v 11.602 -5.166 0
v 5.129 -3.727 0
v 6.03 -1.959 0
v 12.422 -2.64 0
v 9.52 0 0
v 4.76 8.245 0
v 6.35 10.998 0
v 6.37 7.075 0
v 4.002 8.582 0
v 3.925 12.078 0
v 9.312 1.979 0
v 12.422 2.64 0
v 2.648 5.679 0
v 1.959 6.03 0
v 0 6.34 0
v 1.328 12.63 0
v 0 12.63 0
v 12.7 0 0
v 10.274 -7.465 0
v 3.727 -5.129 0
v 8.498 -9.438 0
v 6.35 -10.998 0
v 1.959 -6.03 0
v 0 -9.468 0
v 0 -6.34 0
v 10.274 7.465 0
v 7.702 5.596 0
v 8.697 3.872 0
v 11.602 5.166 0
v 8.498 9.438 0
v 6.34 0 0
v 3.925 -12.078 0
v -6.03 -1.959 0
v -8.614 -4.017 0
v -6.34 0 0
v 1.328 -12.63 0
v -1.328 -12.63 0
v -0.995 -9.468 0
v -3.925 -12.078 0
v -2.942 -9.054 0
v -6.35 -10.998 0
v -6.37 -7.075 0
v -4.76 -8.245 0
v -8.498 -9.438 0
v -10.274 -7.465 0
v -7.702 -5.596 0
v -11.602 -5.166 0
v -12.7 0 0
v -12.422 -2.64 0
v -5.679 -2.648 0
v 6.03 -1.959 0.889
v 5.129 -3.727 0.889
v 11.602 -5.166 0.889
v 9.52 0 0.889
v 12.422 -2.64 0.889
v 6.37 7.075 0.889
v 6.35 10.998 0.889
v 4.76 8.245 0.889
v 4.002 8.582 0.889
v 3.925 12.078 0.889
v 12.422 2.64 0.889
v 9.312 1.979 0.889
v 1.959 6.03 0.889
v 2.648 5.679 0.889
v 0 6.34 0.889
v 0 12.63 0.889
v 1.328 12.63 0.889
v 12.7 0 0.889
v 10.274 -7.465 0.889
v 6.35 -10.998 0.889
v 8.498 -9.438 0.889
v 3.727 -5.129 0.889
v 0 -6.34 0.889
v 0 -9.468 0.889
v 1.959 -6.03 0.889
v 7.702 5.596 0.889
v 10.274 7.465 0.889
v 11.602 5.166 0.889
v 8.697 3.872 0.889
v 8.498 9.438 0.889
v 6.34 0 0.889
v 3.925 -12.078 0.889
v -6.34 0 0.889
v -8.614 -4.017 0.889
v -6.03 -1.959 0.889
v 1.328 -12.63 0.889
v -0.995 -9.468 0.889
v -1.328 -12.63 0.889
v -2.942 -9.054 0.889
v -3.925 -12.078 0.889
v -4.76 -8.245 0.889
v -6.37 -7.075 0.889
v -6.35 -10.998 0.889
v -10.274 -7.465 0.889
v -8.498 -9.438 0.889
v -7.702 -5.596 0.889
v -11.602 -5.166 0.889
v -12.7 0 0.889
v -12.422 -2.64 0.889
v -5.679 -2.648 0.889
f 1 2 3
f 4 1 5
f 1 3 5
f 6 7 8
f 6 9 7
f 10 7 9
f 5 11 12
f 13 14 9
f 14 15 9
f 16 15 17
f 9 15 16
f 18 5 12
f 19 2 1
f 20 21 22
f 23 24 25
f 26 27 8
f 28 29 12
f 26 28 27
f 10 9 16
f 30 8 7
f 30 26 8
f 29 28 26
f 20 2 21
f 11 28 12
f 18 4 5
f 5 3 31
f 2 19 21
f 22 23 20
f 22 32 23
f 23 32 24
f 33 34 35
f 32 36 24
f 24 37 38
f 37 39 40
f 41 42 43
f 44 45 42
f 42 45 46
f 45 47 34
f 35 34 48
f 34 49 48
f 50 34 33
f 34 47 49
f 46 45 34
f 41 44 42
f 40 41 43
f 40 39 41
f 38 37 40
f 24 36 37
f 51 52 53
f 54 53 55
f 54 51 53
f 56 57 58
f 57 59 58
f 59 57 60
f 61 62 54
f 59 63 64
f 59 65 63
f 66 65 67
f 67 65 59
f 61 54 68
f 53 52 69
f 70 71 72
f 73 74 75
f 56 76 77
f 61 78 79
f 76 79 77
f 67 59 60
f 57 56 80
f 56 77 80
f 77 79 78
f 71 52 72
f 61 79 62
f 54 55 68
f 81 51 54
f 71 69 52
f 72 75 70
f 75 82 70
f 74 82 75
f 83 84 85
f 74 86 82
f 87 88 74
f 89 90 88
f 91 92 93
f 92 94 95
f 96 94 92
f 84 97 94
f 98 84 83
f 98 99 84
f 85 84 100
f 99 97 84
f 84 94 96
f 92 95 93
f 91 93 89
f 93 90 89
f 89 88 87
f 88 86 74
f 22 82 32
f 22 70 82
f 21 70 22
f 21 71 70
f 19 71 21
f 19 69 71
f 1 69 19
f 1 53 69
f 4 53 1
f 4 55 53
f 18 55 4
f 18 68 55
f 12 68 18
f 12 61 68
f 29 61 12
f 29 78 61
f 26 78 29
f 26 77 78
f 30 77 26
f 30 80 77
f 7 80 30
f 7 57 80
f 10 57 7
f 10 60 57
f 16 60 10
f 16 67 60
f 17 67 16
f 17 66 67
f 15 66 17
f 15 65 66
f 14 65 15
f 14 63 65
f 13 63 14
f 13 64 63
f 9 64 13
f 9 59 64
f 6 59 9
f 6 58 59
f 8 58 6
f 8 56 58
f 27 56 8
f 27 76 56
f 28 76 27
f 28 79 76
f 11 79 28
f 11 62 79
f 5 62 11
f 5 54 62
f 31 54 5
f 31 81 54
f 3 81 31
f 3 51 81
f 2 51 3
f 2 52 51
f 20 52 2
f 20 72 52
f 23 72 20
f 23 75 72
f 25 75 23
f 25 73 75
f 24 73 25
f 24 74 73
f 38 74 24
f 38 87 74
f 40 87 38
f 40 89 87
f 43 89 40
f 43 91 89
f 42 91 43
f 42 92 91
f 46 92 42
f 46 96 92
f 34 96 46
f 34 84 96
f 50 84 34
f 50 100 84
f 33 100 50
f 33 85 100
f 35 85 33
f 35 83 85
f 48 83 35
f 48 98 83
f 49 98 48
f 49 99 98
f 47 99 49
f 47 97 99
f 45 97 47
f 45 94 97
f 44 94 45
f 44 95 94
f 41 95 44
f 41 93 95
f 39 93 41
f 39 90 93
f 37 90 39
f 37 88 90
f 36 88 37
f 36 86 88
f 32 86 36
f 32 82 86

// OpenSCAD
/*
This s a cclip or spring clip or snap ring


'''
*/


function polar(r,theta)   = r*[sin(theta), cos(theta)]; 


module ArchClipingPloy(Rad, thickness,StartAngle,endAngle) 
{echo(StartAngle,endAngle);
    pointA=[0,0];
    
       pointS=polar(Rad*2,StartAngle);
        pointE=polar(Rad*2,endAngle);
        pointOut=polar(Rad*2,(endAngle+StartAngle)/2);
    pointOutS=polar(Rad*2,(StartAngle+(endAngle+StartAngle)/2)/2);
     pointOutE=polar(Rad*2,(endAngle+(endAngle+StartAngle)/2)/2);
   // echo(pointA,pointS,pointE,pointOut,(endAngle+StartAngle)/2,(StartAngle+(endAngle+StartAngle)/2)/2,(endAngle+(endAngle+StartAngle)/2)/2);
    polygon([pointA,pointS,,pointOutS,pointOut,pointOutE,pointE],paths=[[0,1,2,3,4,5]]);
    }
module Arch(Rad, thickness,StartAngle,endAngle) {
   echo("Arch", Rad, thickness,StartAngle,endAngle);
    intersection()
    {
        difference ()
        {        
          circle(Rad ,center = true);
         circle(Rad-thickness,center = true);
           
       }
        ArchClipingPloy(Rad, thickness,StartAngle,endAngle) ;
       
    }
    
       }
       


module cclip(
ta=270,//total angle

id=12.7,//inner diamater
w=6.36,//width
useHandle=false,
NubAngle=25,//NubAngle

Ring_thickness=0.889 /// most standard things online use .035" =.889mm
    )
{
 nubW=w/2;//nub width
ico=ta/3;//innerCutOut
linear_extrude(height = Ring_thickness,  convexity = 100, twist = 0){
if(useHandle)
    rotate([0, 0, 1], a=ta/-2 ) 
        translate([0,id+w , 0]) 
            circle(id ,center = true);

    difference(){
        //++++++++++++++++++++//
        Arch(id,w,0,ta);
        //---------------------
        Arch(id-w+nubW,nubW,NubAngle,ico);
        Arch(id-w+nubW,nubW,ico*2,ta-NubAngle);
    }
}
}
//works Ferifyed 
cclip(ta=270,id=12.7,w=6.36,useHandle=false,NubAngle=25,Ring_thickness=.889);

/* Make two for each
 cclip(ta=245,id=12.7,w=6.36,useHandle=false,NubAngle=25,Ring_thickness=.889);
color("Yellow",1){
 rotate([0,0,1],a=180 )
  cclip(ta=245,id=12.7,w=6.36,useHandle=false,NubAngle=25,Ring_thickness=.889);
}
// */
//sphere(r=5,$fn=50);

//'''
